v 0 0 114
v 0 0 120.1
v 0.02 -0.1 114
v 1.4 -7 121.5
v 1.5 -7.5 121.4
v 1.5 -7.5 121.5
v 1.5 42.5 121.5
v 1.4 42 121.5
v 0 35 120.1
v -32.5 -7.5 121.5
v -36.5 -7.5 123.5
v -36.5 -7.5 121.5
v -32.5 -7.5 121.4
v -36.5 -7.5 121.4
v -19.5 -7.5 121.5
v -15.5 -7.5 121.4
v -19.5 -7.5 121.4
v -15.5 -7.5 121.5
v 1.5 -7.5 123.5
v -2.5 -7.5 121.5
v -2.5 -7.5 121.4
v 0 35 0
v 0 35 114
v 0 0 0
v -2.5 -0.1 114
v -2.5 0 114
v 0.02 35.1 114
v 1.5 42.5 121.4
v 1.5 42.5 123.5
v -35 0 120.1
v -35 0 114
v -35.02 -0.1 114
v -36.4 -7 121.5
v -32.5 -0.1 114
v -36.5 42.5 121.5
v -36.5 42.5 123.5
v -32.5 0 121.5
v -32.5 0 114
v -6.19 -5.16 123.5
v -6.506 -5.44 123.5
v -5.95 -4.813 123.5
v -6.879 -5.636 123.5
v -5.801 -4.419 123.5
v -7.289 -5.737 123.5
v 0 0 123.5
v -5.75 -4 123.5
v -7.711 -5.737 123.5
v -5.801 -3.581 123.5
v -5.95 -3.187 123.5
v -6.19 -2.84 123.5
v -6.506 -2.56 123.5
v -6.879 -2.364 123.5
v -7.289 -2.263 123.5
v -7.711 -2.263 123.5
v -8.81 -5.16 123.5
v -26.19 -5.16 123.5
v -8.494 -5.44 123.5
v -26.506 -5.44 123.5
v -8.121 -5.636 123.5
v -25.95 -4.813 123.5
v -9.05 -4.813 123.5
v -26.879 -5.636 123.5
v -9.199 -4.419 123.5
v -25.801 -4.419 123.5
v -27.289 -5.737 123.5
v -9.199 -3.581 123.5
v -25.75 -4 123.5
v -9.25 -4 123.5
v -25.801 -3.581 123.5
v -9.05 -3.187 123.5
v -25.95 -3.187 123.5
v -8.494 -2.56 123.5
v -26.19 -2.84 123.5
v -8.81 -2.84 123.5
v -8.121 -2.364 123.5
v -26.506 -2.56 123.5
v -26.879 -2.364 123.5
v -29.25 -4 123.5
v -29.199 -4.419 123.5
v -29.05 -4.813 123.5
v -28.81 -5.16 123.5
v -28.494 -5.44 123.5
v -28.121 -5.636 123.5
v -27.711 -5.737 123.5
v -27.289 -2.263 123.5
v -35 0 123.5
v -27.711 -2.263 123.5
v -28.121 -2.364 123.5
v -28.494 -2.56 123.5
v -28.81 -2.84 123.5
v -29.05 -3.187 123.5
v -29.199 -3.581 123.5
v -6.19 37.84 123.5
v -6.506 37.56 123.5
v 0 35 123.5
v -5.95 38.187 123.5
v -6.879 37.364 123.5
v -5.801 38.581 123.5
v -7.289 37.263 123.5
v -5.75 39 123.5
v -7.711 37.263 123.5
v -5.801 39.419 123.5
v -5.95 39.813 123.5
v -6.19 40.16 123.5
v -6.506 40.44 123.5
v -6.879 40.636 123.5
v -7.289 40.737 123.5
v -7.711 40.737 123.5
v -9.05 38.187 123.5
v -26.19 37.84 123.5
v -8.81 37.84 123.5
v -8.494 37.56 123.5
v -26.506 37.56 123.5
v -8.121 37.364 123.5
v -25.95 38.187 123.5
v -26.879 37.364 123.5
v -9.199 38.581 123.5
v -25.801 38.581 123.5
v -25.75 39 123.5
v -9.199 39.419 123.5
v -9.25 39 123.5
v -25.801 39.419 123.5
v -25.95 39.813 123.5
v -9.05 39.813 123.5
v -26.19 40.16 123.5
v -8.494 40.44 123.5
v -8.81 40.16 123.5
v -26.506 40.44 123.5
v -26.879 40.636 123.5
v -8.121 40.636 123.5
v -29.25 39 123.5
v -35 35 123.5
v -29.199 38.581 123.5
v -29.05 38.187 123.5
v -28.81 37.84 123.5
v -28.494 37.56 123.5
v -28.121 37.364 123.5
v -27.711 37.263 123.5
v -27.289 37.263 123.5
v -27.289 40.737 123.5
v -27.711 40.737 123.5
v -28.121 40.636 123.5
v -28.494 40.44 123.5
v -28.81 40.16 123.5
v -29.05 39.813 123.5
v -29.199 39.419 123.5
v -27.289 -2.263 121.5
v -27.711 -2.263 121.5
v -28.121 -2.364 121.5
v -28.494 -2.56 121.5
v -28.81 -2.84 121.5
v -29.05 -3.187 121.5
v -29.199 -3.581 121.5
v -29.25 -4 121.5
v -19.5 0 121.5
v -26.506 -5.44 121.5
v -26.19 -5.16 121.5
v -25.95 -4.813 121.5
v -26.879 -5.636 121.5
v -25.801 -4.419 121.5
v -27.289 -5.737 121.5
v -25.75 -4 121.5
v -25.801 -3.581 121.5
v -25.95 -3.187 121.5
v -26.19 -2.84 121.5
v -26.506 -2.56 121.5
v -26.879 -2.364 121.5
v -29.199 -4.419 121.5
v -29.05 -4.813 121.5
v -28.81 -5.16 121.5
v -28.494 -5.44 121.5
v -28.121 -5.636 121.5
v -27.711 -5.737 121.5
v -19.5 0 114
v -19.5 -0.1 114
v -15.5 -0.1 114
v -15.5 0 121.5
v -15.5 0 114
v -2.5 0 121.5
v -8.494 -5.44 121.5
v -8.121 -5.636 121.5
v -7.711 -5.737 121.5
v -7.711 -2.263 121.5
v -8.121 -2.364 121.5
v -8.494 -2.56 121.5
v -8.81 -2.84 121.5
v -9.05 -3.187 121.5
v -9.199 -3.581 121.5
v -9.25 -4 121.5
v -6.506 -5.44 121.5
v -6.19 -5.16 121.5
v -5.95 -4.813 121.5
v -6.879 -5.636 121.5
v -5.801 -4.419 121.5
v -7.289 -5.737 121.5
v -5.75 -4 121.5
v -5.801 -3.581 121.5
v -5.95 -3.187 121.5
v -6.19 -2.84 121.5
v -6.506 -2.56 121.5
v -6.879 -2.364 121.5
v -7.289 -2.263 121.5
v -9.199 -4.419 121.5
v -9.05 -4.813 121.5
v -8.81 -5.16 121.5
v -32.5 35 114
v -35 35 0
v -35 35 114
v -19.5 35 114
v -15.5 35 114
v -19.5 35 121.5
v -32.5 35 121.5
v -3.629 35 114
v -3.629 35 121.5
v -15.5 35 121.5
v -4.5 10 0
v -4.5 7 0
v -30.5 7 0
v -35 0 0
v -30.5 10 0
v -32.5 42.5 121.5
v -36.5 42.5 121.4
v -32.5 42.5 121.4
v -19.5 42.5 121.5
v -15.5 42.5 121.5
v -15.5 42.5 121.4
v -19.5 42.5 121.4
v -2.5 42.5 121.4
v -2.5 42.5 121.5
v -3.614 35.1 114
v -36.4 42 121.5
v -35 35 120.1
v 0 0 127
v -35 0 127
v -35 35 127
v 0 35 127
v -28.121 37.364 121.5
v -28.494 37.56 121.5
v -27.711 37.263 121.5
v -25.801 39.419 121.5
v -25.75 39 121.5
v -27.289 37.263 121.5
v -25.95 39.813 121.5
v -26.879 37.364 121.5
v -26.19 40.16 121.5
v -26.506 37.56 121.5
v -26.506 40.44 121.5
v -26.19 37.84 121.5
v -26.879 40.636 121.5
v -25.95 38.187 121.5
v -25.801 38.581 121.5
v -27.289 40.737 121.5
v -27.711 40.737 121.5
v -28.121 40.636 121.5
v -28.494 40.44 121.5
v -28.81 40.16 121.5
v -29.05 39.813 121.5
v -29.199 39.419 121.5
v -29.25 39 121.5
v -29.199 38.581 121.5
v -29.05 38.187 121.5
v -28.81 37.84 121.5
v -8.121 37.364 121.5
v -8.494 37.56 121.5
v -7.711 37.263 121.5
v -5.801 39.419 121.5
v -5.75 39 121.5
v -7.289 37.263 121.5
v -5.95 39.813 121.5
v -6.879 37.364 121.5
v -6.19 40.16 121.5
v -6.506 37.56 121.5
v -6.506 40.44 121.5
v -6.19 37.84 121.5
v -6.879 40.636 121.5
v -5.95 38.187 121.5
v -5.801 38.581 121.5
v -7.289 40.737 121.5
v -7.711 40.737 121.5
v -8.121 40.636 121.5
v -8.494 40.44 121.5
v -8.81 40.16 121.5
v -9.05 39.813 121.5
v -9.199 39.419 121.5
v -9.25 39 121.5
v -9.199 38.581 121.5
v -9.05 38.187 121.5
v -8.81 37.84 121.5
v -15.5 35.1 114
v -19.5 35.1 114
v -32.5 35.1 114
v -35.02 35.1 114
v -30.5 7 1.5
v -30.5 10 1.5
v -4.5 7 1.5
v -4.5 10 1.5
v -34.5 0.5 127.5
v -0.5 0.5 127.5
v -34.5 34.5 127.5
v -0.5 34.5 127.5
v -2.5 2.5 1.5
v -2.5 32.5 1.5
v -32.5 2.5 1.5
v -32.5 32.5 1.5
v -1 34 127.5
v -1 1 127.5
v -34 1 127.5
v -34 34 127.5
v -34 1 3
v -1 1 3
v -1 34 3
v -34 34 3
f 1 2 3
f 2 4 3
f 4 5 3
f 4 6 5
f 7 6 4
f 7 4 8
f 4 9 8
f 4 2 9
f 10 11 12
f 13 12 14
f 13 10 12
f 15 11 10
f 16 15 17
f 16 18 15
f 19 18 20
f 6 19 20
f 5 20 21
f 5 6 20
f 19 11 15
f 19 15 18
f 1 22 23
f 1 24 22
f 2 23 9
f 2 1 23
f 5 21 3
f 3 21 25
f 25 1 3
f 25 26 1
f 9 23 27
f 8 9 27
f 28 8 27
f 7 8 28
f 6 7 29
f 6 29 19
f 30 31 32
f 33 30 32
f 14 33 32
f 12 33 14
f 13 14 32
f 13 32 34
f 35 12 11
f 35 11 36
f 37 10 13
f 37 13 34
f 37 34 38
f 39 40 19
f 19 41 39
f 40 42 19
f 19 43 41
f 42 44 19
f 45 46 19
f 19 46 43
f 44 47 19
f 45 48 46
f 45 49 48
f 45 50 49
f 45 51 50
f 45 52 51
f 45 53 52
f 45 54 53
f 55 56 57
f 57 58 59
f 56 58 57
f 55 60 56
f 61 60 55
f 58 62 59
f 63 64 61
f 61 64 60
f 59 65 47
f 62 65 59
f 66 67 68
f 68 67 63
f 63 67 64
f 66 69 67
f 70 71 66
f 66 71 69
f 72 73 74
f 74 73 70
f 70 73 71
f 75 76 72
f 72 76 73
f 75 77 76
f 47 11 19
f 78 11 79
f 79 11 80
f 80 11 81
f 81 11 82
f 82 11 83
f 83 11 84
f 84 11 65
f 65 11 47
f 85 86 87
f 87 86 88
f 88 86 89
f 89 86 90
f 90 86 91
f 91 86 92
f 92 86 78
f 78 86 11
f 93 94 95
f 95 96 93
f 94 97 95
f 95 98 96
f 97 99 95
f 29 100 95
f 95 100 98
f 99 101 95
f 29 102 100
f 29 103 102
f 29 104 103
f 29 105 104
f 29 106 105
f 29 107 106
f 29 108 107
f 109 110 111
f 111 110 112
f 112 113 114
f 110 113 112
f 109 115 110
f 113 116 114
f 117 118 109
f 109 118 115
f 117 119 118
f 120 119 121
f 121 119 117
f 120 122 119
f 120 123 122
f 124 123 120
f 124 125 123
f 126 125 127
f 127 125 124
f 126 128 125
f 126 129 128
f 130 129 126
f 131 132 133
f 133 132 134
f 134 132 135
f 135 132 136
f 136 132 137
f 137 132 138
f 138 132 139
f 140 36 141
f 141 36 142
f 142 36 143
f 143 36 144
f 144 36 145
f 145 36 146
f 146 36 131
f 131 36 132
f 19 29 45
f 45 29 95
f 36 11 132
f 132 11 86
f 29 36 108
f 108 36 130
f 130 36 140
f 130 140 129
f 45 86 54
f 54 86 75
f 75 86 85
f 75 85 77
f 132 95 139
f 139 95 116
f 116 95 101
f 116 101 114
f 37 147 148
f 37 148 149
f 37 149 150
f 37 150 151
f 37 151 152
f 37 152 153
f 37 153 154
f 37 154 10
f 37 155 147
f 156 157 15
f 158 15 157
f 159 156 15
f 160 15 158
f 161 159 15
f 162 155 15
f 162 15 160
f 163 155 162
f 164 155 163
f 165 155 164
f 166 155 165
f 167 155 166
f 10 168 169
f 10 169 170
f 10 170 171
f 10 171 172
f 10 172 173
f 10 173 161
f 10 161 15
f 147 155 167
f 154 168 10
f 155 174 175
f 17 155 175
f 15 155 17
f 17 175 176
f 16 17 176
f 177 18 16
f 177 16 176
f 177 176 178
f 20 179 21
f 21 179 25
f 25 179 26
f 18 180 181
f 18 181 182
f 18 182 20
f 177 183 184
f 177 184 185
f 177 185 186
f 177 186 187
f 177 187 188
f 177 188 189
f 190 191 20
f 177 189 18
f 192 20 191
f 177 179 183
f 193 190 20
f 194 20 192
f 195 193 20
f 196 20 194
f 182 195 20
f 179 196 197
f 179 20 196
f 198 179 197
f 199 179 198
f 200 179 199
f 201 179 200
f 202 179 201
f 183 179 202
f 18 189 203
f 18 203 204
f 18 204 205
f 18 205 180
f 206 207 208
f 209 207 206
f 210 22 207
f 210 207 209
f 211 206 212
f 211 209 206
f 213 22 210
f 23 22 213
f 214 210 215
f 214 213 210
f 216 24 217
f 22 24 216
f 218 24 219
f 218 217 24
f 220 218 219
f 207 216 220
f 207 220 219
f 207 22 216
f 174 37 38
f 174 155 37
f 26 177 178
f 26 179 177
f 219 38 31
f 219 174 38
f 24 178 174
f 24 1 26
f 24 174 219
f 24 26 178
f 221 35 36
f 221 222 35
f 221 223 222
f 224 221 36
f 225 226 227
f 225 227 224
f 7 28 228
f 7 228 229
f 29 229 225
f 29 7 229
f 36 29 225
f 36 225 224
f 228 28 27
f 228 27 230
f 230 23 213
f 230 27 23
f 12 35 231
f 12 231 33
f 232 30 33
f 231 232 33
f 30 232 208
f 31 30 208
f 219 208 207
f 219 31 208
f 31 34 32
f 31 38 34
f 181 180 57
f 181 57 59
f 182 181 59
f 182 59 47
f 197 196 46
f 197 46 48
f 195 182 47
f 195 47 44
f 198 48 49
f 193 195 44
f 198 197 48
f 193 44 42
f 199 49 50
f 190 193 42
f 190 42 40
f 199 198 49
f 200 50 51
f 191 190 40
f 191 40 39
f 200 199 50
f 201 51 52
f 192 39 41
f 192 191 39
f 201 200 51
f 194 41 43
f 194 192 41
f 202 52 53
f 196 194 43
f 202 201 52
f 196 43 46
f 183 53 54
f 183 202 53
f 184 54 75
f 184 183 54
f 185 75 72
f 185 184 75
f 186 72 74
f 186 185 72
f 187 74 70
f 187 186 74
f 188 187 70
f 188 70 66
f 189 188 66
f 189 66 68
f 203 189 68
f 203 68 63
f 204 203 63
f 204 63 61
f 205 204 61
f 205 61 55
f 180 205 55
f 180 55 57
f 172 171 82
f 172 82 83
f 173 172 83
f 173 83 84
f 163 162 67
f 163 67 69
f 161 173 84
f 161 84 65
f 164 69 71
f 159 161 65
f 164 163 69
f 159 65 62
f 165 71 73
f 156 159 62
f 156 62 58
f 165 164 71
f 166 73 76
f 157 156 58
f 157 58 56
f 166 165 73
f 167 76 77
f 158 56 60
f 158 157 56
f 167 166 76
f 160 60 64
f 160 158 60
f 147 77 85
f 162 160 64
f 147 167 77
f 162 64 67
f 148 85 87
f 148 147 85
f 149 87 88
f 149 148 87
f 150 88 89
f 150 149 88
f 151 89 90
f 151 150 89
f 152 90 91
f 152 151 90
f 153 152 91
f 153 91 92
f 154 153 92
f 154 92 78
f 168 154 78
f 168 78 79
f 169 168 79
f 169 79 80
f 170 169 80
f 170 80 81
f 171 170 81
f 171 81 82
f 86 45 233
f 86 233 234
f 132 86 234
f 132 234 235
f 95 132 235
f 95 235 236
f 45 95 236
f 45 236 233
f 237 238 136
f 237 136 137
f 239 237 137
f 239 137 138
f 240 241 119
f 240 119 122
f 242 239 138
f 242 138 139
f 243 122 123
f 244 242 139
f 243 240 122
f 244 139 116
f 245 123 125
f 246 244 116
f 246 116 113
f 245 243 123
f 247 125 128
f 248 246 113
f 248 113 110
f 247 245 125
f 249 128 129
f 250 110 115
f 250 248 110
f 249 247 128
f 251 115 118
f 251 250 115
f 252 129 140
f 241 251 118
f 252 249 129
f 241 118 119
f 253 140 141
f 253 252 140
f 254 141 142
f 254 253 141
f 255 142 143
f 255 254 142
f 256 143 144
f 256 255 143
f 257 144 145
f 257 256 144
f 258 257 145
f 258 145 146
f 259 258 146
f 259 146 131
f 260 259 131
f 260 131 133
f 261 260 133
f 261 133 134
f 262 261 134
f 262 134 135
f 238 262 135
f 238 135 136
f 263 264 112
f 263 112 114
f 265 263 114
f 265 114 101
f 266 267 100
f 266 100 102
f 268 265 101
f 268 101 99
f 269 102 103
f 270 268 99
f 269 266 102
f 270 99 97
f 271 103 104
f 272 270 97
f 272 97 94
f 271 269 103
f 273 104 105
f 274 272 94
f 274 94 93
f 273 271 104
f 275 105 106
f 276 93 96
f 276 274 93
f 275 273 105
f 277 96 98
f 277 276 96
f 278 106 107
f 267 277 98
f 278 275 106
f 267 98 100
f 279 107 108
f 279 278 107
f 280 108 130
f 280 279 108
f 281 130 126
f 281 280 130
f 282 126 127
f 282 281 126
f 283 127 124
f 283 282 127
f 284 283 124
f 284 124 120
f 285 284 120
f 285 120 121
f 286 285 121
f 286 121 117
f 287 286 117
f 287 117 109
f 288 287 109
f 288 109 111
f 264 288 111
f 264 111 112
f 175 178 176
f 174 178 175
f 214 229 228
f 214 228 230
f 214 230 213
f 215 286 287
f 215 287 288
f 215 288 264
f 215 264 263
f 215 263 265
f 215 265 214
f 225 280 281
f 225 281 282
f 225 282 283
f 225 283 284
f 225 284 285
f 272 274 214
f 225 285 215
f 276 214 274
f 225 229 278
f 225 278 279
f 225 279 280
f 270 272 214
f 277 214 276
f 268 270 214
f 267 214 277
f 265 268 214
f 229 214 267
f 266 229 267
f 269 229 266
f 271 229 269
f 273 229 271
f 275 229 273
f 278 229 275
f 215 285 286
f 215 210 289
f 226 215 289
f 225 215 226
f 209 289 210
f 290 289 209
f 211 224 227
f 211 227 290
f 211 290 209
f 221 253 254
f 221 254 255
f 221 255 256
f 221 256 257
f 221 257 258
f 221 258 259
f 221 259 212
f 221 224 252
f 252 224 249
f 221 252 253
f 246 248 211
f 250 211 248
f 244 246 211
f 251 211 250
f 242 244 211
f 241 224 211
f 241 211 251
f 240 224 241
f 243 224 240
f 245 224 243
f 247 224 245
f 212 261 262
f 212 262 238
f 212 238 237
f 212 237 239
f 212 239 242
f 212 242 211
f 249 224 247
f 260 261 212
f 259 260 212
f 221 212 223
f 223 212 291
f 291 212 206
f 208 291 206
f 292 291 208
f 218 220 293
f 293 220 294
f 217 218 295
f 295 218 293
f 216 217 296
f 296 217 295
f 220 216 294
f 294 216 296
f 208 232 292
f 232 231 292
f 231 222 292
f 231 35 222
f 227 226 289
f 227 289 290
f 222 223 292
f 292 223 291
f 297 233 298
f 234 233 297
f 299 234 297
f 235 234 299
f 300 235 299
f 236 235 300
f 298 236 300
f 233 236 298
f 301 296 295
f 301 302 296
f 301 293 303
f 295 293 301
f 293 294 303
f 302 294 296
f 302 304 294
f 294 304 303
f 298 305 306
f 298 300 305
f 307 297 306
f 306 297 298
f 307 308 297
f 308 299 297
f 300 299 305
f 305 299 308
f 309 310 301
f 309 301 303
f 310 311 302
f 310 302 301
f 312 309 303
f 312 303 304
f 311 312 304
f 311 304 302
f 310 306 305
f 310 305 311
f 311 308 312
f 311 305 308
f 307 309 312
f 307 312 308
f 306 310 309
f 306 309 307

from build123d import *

# Parameters (mm, degrees)
SKETCH_W        = 35
SKETCH_H        = 35
SKETCH_W_2      = 26
SKETCH_H_2      = 3
PAD_DEPTH       = 1.5
SKETCH001_W     = 35
SKETCH001_H     = 35
SKETCH001_W_2   = 33
SKETCH001_H_2   = 33
PAD001_DEPTH    = 120
CHAMFER_SIZE    = 1.5
SKETCH002_W     = 38
SKETCH002_H     = 50
SKETCH002_R     = 1.75
SKETCH002_W_2   = 33
SKETCH002_H_2   = 33
PAD002_DEPTH    = 2
SKETCH003_W     = 35
SKETCH003_H     = 35
SKETCH003_W_2   = 33
SKETCH003_H_2   = 33
PAD003_DEPTH    = 4
CHAMFER001_SIZE = 0.5
SKETCH004_W     = 4
SKETCH004_H     = 7.5
PAD004_DEPTH    = 7.5
CHAMFER002_SIZE = 7.4
CHAMFER003_SIZE = 1.4


with BuildPart() as part:
    # Sketch → Pad (new body)
    with BuildSketch(Plane.XY):
        with Locations((-17.5, 17.5)):
            Rectangle(SKETCH_W, SKETCH_H)
        with Locations((-17.5, 8.5)):
            Rectangle(SKETCH_W_2, SKETCH_H_2, mode=Mode.SUBTRACT)
    extrude(amount=PAD_DEPTH)

    # Sketch001 (on Face10 of Pad) → Pad001 (join)
    with BuildSketch(Plane.XY.offset(1.5)):
        with Locations((-17.5, 17.5)):
            Rectangle(SKETCH001_W, SKETCH001_H)
        with Locations((-17.5, 17.5)):
            Rectangle(SKETCH001_W_2, SKETCH001_H_2, mode=Mode.SUBTRACT)
    extrude(amount=PAD001_DEPTH)

    # Chamfer
    chamfer_edges = [part.edges().sort_by_distance(p)[0] for p in [
        (-17.5, 1, 1.5),
        (-34, 17.5, 1.5),
        (-1, 17.5, 1.5),
        (-17.5, 34, 1.5),
    ]]
    chamfer(chamfer_edges, length=CHAMFER_SIZE)

    # Sketch002 (on Face15 of Chamfer) → Pad002 (join)
    with BuildSketch(Plane.XY.offset(121.5)):
        with Locations((-17.5, 17.5)):
            Rectangle(SKETCH002_W, SKETCH002_H)
        with Locations((-27.5, -4)):
            Circle(SKETCH002_R, mode=Mode.SUBTRACT)
        with Locations((-7.5, -4)):
            Circle(SKETCH002_R, mode=Mode.SUBTRACT)
        with Locations((-27.5, 39)):
            Circle(SKETCH002_R, mode=Mode.SUBTRACT)
        with Locations((-7.5, 39)):
            Circle(SKETCH002_R, mode=Mode.SUBTRACT)
        with Locations((-17.5, 17.5)):
            Rectangle(SKETCH002_W_2, SKETCH002_H_2, mode=Mode.SUBTRACT)
    extrude(amount=PAD002_DEPTH)

    # Sketch003 (on Face17 of Pad002) → Pad003 (join)
    with BuildSketch(Plane.XY.offset(123.5)):
        with Locations((-17.5, 17.5)):
            Rectangle(SKETCH003_W, SKETCH003_H)
        with Locations((-17.5, 17.5)):
            Rectangle(SKETCH003_W_2, SKETCH003_H_2, mode=Mode.SUBTRACT)
    extrude(amount=PAD003_DEPTH)

    # Chamfer001
    chamfer001_edges = [part.edges().sort_by_distance(p)[0] for p in [
        (-35, 17.5, 127.5),
        (-17.5, 0, 127.5),
        (-17.5, 35, 127.5),
        (0, 17.5, 127.5),
    ]]
    chamfer(chamfer001_edges, length=CHAMFER001_SIZE)

    # Sketch004 (on Face32 of Chamfer001) → Pad004 (join)
    with BuildSketch(Plane(origin=(0, 0, 121.5), x_dir=(1, 0, 0), z_dir=(0, 0, -1))):
        Polygon((-35, 0), (-36.5, 7.5), (-32.5, 7.5), (-32.5, 0), align=None)
        Polygon((0, 0), (1.5, 7.5), (-2.5, 7.5), (-2.5, 0), align=None)
        with Locations((-17.5, 3.75)):
            Rectangle(SKETCH004_W, SKETCH004_H)
        Polygon((-35, -35), (-36.5, -42.5), (-32.5, -42.5), (-32.5, -35), align=None)
        Polygon((0, -35), (1.5, -42.5), (-2.5, -42.5), (-3.628958, -35), align=None)
        with Locations((-17.5, -38.75)):
            Rectangle(SKETCH004_W, SKETCH004_H)
    extrude(amount=PAD004_DEPTH)

    # Chamfer002
    chamfer002_edges = [part.edges().sort_by_distance(p)[0] for p in [
        (-34.5, -7.5, 114),
        (-17.5, -7.5, 114),
        (-0.5, -7.5, 114),
        (-34.5, 42.5, 114),
        (-17.5, 42.5, 114),
        (-0.5, 42.5, 114),
    ]]
    chamfer(chamfer002_edges, length=CHAMFER002_SIZE)

    # Chamfer003
    chamfer003_edges = [part.edges().sort_by_distance(p)[0] for p in [
        (-35, 17.5, 121.5),
        (0, 17.5, 121.5),
    ]]
    chamfer(chamfer003_edges, length=CHAMFER003_SIZE)


solid = part.part
